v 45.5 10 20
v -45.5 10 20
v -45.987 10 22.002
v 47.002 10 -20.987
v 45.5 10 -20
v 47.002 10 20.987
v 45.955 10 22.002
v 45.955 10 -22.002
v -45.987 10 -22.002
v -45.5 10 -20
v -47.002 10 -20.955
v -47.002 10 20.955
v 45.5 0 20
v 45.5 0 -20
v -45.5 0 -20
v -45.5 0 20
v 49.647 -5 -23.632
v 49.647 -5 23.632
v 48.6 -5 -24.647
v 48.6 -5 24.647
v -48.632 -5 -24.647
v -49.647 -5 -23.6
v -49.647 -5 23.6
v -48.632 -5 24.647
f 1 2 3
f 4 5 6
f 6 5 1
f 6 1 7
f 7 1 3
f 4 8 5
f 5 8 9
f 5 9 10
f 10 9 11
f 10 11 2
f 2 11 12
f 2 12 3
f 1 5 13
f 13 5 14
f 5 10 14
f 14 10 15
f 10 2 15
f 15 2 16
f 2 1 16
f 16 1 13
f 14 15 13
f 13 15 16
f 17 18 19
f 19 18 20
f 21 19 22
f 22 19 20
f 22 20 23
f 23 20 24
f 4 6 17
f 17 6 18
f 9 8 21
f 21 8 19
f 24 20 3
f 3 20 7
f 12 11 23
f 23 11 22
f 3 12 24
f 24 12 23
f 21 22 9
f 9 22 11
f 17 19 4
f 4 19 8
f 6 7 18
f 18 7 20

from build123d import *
from OCP.BRepFilletAPI import BRepFilletAPI_MakeChamfer

# Parameters (mm, degrees)
SKETCH2_W           = 100
SKETCH2_H           = 50
SKETCH2_W_2         = 91
SKETCH2_H_2         = 40
BOSS_EXTRUDE1_DEPTH = 10
SKETCH3_W           = 100
SKETCH3_H           = 50
BOSS_EXTRUDE2_DEPTH = 5
CHAMFER1_SIZE       = 17
CHAMFER1_SIZE_2     = 2.997558672
CHAMFER2_SIZE       = 1
CHAMFER2_SIZE2      = 1.031574872


with BuildPart() as part:
    # Sketch2 → Boss-Extrude1 (new body)
    with BuildSketch(Plane(origin=(0, 0, 0), x_dir=(1, 0, 0), z_dir=(0, 1, 0))):
        Rectangle(SKETCH2_W, SKETCH2_H)
        Rectangle(SKETCH2_W_2, SKETCH2_H_2, mode=Mode.SUBTRACT)
    extrude(amount=BOSS_EXTRUDE1_DEPTH)

    # Sketch3 → Boss-Extrude2 (add)
    with BuildSketch(Plane.XZ):
        Rectangle(SKETCH3_W, SKETCH3_H)
    extrude(amount=BOSS_EXTRUDE2_DEPTH)

    # Chamfer1
    # the kernel refuses this chamfer: 17, 2.997558672 mm, written as the material it takes off along each edge
    with BuildSketch(Plane(origin=(-50, 10, 69.175159539), x_dir=(-0.0066825316561016975, -0.9999776716360548, 0), z_dir=(0, 0, -1)), Plane(origin=(50, 10, -69.175159539), x_dir=(0.0066825316561016975, -0.9999776716360548, 0), z_dir=(0, 0, 1))) as chamfer1_piece_1:
        Polygon((CHAMFER1_SIZE * 0.999977671636, -CHAMFER1_SIZE * 0.0066825316561), (-CHAMFER1_SIZE_2 * 0.0066825316562, -CHAMFER1_SIZE_2 * 0.999977671651), (0, 0), align=None)
    extrude(amount=138.350319078, mode=Mode.SUBTRACT)
    with BuildSketch(Plane(origin=(-94.175159539, 10, -25), x_dir=(0, -0.9999776716360548, -0.0066825316561016975), z_dir=(1, 0, 0)), Plane(origin=(94.175159539, 10, 25), x_dir=(0, -0.9999776716360548, 0.0066825316561016975), z_dir=(-1, 0, 0))) as chamfer1_piece_2:
        Polygon((CHAMFER1_SIZE * 0.999977671636, -CHAMFER1_SIZE * 0.0066825316561), (-CHAMFER1_SIZE_2 * 0.0066825316562, -CHAMFER1_SIZE_2 * 0.999977671651), (0, 0), align=None)
    extrude(amount=188.350319078, mode=Mode.SUBTRACT)

    # Chamfer2: one chamfer whose edges measure the first distance from different faces: ONE call of the kernel's chamfer builder (chamfer() names one face for all edges)
    chamfer2_edges_1 = [part.edges().sort_by_distance(p)[0] for p in [
        (48.324893683, 2.5, -23.324893683),
        (48.324893683, 2.5, 23.324893683),
    ]]
    chamfer2_side_1 = [part.faces().sort_by_distance(p)[0] for p in [
        (48.349886727, 2.358257408, 0),
    ]]
    chamfer2_edges_2 = [part.edges().sort_by_distance(p)[0] for p in [
        (-48.324893683, 2.5, -23.324893683),
    ]]
    chamfer2_side_2 = [part.faces().sort_by_distance(p)[0] for p in [
        (0, 2.431585346, -23.336957033),
    ]]
    chamfer2_edges_3 = [part.edges().sort_by_distance(p)[0] for p in [
        (-48.324893683, 2.5, 23.324893683),
    ]]
    chamfer2_side_3 = [part.faces().sort_by_distance(p)[0] for p in [
        (0, 2.431585346, 23.336957033),
    ]]
    chamfer2 = BRepFilletAPI_MakeChamfer(part.part.solid().wrapped)
    for e in chamfer2_edges_1:
        chamfer2.Add(CHAMFER2_SIZE, CHAMFER2_SIZE2, e.wrapped, chamfer2_side_1[0].wrapped)  # the first distance lies on this face
    for e in chamfer2_edges_2:
        chamfer2.Add(CHAMFER2_SIZE, CHAMFER2_SIZE2, e.wrapped, chamfer2_side_2[0].wrapped)  # the first distance lies on this face
    for e in chamfer2_edges_3:
        chamfer2.Add(CHAMFER2_SIZE, CHAMFER2_SIZE2, e.wrapped, chamfer2_side_3[0].wrapped)  # the first distance lies on this face
    add(Compound.cast(chamfer2.Shape()), mode=Mode.REPLACE)


solid = part.part
